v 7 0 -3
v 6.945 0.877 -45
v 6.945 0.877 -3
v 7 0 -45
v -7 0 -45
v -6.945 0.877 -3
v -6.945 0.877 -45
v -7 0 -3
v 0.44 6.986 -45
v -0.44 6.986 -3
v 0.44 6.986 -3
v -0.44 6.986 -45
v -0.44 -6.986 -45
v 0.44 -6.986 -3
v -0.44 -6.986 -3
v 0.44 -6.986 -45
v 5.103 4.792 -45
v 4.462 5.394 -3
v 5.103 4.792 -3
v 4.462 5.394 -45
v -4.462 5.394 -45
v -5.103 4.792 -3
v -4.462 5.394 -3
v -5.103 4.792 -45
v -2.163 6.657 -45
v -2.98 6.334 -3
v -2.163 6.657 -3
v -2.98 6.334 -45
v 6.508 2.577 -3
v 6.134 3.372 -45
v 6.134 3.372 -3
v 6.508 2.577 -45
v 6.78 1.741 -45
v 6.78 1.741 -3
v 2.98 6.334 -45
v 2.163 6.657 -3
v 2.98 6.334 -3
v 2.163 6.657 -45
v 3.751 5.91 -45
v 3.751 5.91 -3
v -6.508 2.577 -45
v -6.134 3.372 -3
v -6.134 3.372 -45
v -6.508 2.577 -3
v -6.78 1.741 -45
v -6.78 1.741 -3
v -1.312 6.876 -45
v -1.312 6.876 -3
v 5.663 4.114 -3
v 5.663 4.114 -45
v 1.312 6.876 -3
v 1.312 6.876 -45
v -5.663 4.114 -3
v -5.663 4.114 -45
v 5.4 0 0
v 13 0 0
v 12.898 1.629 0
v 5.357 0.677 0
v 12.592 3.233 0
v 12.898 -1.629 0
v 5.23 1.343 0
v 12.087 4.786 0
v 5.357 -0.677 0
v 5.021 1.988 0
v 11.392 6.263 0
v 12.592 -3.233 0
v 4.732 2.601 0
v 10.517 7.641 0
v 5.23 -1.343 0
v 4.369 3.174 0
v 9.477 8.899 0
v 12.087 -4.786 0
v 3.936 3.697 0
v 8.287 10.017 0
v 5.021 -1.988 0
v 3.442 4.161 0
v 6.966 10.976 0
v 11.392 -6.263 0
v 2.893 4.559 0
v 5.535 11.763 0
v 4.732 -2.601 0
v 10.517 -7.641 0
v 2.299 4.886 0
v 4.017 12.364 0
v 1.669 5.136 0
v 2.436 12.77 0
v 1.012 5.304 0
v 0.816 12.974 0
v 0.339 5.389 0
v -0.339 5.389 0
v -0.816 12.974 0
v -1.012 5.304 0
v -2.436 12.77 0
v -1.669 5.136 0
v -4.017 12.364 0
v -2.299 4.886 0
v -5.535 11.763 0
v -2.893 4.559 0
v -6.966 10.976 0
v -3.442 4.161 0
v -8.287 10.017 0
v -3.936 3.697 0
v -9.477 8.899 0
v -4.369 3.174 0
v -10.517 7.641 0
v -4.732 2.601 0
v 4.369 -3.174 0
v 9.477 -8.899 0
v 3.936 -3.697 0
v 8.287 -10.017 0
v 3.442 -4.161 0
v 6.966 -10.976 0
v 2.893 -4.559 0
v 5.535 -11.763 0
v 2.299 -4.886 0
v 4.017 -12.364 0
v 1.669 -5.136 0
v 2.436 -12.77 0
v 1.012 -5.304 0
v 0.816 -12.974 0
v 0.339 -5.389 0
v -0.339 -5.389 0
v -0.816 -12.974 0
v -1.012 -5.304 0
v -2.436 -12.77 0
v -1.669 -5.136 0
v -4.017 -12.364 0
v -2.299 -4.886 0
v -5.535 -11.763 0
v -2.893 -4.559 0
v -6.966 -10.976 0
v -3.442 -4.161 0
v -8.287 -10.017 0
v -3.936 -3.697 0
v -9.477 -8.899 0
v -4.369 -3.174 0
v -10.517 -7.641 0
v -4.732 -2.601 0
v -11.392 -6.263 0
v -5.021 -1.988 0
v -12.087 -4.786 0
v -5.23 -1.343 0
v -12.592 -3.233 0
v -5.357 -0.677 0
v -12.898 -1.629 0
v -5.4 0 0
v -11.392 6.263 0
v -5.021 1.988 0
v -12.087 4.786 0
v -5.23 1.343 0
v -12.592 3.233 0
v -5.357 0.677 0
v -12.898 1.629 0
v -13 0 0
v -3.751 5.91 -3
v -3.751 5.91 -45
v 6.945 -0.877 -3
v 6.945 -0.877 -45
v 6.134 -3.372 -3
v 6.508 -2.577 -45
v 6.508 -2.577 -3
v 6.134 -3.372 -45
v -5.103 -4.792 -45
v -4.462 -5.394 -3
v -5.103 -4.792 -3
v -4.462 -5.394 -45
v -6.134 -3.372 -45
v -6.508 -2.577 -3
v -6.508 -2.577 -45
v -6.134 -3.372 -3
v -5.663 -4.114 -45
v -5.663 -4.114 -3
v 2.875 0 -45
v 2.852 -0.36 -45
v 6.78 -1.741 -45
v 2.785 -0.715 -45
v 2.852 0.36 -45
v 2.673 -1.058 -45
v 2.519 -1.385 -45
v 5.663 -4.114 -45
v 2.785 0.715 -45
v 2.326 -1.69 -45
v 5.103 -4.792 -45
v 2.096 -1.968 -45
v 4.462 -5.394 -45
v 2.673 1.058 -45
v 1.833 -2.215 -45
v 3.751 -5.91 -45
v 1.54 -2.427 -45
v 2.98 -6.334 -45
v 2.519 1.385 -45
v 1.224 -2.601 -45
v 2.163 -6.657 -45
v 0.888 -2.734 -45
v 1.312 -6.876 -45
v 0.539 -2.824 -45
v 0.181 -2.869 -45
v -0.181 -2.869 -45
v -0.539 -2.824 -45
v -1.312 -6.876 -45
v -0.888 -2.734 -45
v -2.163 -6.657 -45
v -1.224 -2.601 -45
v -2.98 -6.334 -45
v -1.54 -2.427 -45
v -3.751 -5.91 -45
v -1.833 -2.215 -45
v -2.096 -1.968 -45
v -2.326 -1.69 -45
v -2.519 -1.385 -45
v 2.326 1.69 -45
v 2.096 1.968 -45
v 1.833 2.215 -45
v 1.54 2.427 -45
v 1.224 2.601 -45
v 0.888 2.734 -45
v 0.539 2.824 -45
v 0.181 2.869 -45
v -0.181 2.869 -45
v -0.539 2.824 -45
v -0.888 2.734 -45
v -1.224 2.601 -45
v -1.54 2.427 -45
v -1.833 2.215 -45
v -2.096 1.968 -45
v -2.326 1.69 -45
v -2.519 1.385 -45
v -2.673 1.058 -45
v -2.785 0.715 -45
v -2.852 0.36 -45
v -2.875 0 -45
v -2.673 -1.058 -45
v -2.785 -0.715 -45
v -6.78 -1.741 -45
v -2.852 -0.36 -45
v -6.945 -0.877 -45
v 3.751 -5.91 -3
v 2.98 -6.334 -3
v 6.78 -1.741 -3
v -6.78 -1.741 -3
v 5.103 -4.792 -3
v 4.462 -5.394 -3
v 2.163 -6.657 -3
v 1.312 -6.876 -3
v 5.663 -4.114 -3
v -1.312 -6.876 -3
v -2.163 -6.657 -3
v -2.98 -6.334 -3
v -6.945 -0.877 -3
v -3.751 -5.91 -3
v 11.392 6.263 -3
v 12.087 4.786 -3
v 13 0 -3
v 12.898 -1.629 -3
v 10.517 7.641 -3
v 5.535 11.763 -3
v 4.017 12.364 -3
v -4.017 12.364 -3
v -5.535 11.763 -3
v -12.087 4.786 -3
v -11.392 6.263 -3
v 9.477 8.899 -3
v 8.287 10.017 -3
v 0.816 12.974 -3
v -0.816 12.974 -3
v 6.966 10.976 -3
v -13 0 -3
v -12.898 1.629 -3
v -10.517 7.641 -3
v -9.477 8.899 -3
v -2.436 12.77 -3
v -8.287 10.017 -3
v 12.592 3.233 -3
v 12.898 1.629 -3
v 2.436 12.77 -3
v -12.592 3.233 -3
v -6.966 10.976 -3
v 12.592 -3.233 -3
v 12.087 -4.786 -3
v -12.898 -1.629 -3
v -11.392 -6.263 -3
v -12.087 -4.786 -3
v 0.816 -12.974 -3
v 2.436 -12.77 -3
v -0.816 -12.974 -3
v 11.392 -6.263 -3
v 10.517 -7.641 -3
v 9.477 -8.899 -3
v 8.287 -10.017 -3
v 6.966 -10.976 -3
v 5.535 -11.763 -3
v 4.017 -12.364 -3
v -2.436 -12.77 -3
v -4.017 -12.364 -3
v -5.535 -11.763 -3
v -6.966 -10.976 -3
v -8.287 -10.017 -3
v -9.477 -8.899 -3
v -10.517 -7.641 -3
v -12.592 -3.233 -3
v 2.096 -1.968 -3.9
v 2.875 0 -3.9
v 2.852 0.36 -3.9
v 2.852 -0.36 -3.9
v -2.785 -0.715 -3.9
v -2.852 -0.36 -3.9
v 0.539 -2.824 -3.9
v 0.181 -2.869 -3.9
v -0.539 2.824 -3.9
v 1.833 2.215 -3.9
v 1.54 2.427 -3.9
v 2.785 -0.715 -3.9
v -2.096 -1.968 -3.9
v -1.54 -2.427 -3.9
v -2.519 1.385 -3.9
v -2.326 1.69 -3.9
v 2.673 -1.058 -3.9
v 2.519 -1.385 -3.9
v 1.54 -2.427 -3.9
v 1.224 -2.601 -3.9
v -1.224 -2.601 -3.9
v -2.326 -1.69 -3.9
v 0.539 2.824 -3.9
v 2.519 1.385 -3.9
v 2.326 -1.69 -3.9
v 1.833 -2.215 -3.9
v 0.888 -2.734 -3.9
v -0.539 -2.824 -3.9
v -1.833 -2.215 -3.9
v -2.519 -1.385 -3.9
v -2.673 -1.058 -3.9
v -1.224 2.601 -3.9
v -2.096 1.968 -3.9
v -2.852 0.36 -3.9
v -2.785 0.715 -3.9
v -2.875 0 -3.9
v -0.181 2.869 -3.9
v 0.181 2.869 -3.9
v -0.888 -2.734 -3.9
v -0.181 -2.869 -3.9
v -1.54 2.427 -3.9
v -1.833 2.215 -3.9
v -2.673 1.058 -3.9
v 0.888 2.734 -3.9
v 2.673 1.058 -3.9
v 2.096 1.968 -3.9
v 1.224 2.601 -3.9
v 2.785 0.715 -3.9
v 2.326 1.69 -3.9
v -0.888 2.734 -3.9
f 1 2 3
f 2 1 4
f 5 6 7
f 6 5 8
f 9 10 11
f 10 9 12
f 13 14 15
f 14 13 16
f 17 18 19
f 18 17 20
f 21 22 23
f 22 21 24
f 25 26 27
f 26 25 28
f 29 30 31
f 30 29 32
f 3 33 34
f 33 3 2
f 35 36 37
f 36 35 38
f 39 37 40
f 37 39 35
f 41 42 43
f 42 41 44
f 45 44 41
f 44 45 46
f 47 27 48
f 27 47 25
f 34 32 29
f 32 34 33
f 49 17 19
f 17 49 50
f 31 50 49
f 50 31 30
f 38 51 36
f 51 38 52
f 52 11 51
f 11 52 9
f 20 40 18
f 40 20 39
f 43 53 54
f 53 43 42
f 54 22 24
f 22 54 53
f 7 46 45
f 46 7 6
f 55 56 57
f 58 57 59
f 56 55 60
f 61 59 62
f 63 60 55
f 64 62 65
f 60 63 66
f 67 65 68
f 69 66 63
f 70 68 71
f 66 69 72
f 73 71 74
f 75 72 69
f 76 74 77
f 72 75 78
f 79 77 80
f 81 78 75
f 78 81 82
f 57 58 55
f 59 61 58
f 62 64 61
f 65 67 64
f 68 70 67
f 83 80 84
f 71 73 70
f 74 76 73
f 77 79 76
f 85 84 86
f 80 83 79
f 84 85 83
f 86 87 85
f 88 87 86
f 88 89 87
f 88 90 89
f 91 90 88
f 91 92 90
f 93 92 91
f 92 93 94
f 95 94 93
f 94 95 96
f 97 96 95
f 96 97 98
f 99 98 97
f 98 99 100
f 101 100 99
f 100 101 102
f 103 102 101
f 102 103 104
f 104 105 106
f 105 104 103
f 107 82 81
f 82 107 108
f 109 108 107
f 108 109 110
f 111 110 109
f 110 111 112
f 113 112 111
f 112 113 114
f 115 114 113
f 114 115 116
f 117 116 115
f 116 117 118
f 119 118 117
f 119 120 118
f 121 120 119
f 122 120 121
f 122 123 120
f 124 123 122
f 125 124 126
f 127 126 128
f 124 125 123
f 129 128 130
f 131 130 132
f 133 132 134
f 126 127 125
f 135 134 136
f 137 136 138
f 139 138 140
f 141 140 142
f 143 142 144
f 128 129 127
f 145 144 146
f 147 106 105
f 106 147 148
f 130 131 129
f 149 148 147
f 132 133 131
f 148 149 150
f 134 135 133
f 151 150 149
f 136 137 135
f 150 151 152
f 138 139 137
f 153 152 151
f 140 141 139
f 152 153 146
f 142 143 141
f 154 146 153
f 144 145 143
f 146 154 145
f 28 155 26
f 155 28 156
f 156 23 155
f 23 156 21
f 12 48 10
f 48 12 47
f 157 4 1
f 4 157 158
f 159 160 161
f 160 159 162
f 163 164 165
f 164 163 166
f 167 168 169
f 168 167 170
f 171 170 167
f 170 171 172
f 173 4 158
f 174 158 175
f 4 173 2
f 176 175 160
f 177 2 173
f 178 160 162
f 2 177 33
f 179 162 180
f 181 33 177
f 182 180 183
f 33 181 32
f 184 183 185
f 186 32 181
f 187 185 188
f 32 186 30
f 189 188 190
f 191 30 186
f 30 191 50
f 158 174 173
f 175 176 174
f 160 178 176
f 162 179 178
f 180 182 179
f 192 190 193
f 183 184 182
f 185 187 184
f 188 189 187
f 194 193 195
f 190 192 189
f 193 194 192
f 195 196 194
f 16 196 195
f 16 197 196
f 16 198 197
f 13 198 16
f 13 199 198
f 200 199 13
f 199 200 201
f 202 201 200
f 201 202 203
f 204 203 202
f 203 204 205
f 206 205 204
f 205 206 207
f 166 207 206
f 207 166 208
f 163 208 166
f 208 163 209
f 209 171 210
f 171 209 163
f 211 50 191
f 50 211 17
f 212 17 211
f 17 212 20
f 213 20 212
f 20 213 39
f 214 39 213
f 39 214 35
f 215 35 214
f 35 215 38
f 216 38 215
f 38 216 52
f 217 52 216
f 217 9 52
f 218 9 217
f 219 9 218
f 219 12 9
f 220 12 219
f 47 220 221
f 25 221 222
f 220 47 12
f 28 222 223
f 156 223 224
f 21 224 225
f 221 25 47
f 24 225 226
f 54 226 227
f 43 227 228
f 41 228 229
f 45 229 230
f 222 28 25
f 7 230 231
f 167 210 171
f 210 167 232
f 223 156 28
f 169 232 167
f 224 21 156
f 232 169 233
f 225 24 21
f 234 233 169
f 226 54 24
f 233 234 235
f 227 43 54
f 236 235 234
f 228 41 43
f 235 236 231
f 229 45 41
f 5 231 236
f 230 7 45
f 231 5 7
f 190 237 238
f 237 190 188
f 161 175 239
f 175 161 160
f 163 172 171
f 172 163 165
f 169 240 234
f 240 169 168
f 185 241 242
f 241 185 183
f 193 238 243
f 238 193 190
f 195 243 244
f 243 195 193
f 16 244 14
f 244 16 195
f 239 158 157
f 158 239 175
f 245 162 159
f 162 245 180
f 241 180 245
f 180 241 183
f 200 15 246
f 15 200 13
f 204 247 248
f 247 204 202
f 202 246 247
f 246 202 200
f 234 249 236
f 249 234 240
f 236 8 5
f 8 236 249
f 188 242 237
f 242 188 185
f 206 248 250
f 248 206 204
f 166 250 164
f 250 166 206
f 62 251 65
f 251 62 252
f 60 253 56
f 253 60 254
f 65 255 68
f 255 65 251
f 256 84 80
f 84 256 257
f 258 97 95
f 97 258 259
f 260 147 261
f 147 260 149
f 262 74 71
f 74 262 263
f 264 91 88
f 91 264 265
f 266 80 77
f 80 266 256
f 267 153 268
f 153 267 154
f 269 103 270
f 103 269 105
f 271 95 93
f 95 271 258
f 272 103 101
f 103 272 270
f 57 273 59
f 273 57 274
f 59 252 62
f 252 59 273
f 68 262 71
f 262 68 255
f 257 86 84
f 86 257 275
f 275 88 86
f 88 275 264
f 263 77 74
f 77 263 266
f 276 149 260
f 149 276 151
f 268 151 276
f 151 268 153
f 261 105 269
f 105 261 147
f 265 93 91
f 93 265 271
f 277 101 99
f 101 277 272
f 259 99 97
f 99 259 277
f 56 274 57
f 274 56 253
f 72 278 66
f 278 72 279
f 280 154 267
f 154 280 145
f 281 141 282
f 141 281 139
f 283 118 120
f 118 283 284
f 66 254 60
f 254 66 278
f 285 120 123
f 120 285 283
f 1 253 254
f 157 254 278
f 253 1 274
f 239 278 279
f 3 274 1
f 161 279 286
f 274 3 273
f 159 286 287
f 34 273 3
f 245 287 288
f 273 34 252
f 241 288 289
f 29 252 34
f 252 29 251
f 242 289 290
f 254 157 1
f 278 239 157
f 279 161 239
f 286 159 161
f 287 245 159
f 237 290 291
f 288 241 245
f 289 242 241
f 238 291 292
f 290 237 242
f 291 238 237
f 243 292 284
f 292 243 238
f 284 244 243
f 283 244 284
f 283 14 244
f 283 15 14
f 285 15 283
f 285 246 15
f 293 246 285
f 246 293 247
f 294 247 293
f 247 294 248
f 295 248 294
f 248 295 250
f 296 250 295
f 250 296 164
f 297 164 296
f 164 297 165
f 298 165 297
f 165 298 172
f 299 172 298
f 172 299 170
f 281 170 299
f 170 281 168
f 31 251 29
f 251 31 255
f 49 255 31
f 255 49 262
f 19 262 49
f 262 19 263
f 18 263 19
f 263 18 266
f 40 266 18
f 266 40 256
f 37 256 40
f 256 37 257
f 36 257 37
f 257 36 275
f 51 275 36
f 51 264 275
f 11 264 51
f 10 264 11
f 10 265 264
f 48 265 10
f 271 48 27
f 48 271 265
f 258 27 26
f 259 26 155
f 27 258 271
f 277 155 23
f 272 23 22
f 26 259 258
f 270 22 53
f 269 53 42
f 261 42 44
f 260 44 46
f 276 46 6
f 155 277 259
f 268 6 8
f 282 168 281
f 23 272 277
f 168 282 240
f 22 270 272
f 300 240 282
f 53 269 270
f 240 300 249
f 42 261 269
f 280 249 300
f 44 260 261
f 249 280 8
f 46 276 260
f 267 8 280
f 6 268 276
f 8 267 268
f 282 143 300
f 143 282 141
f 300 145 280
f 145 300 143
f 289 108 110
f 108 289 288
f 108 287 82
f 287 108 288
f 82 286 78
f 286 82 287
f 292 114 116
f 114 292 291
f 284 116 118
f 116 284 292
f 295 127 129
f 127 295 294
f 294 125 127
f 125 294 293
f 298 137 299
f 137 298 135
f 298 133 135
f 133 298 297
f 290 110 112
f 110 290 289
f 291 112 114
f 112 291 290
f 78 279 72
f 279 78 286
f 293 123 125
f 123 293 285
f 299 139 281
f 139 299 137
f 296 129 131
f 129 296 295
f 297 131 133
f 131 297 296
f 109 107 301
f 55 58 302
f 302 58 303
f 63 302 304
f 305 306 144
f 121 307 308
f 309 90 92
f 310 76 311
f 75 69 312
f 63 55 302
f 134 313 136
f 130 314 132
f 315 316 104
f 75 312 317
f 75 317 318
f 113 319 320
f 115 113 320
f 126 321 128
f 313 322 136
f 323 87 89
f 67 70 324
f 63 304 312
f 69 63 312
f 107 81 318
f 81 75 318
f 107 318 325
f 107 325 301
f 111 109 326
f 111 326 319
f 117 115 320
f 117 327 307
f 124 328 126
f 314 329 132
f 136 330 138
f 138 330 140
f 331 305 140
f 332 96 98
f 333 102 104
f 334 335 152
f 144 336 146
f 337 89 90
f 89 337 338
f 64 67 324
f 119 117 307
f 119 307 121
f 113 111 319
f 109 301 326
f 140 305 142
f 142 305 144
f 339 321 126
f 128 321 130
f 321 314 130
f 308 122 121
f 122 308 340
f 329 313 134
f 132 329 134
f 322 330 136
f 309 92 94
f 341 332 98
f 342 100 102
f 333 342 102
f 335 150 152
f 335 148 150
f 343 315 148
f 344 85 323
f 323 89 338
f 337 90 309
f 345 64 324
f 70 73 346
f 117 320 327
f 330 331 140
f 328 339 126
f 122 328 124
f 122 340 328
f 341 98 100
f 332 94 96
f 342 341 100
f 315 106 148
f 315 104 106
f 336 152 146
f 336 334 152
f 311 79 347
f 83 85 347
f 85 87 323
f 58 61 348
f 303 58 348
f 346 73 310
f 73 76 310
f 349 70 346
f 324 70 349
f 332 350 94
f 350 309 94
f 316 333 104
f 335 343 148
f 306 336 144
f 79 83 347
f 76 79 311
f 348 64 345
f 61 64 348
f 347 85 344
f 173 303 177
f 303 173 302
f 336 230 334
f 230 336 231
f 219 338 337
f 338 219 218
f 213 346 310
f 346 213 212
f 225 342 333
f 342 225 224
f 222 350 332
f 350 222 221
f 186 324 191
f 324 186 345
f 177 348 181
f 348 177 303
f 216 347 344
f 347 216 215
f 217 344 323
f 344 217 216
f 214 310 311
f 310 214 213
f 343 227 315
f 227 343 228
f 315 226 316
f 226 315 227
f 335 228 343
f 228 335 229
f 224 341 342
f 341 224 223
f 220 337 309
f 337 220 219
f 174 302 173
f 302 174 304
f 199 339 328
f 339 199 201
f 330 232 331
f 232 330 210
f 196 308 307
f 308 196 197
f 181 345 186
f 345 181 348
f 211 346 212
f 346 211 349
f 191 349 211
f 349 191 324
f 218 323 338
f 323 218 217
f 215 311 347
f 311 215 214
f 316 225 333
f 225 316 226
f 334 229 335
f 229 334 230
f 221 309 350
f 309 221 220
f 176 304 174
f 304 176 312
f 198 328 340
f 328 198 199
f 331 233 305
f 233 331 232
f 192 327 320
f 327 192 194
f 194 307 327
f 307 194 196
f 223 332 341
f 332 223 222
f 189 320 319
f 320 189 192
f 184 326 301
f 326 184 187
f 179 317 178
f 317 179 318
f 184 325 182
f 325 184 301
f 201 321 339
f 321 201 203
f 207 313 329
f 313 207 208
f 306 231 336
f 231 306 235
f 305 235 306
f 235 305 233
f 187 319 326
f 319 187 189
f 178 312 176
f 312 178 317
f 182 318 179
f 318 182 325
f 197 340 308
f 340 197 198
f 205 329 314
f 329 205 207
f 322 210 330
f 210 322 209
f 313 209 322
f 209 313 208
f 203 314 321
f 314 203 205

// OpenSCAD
$fn = 50;


difference() {
	union() {
		translate(v = [0, 0, -45.0000000000]) {
			cylinder(h = 45, r = 7.0000000000);
		}
		translate(v = [0, 0, -3.0000000000]) {
			cylinder(h = 3, r = 13.0000000000);
		}
	}
	union() {
		translate(v = [0, 0, 0]) {
			rotate(a = [0, 0, 0]) {
				difference() {
					union() {
						#translate(v = [0, 0, -45.0000000000]) {
							cylinder(h = 45, r = 2.6000000000);
						}
						#translate(v = [0, 0, -3.9000000000]) {
							cylinder(h = 3.9000000000, r = 7.0000000000, r1 = 2.8750000000, r2 = 5.4000000000);
						}
						#translate(v = [0, 0, -45.0000000000]) {
							cylinder(h = 45, r = 2.8750000000);
						}
						#translate(v = [0, 0, -45.0000000000]) {
							cylinder(h = 45, r = 2.6000000000);
						}
					}
					union();
				}
			}
		}
	}
}
